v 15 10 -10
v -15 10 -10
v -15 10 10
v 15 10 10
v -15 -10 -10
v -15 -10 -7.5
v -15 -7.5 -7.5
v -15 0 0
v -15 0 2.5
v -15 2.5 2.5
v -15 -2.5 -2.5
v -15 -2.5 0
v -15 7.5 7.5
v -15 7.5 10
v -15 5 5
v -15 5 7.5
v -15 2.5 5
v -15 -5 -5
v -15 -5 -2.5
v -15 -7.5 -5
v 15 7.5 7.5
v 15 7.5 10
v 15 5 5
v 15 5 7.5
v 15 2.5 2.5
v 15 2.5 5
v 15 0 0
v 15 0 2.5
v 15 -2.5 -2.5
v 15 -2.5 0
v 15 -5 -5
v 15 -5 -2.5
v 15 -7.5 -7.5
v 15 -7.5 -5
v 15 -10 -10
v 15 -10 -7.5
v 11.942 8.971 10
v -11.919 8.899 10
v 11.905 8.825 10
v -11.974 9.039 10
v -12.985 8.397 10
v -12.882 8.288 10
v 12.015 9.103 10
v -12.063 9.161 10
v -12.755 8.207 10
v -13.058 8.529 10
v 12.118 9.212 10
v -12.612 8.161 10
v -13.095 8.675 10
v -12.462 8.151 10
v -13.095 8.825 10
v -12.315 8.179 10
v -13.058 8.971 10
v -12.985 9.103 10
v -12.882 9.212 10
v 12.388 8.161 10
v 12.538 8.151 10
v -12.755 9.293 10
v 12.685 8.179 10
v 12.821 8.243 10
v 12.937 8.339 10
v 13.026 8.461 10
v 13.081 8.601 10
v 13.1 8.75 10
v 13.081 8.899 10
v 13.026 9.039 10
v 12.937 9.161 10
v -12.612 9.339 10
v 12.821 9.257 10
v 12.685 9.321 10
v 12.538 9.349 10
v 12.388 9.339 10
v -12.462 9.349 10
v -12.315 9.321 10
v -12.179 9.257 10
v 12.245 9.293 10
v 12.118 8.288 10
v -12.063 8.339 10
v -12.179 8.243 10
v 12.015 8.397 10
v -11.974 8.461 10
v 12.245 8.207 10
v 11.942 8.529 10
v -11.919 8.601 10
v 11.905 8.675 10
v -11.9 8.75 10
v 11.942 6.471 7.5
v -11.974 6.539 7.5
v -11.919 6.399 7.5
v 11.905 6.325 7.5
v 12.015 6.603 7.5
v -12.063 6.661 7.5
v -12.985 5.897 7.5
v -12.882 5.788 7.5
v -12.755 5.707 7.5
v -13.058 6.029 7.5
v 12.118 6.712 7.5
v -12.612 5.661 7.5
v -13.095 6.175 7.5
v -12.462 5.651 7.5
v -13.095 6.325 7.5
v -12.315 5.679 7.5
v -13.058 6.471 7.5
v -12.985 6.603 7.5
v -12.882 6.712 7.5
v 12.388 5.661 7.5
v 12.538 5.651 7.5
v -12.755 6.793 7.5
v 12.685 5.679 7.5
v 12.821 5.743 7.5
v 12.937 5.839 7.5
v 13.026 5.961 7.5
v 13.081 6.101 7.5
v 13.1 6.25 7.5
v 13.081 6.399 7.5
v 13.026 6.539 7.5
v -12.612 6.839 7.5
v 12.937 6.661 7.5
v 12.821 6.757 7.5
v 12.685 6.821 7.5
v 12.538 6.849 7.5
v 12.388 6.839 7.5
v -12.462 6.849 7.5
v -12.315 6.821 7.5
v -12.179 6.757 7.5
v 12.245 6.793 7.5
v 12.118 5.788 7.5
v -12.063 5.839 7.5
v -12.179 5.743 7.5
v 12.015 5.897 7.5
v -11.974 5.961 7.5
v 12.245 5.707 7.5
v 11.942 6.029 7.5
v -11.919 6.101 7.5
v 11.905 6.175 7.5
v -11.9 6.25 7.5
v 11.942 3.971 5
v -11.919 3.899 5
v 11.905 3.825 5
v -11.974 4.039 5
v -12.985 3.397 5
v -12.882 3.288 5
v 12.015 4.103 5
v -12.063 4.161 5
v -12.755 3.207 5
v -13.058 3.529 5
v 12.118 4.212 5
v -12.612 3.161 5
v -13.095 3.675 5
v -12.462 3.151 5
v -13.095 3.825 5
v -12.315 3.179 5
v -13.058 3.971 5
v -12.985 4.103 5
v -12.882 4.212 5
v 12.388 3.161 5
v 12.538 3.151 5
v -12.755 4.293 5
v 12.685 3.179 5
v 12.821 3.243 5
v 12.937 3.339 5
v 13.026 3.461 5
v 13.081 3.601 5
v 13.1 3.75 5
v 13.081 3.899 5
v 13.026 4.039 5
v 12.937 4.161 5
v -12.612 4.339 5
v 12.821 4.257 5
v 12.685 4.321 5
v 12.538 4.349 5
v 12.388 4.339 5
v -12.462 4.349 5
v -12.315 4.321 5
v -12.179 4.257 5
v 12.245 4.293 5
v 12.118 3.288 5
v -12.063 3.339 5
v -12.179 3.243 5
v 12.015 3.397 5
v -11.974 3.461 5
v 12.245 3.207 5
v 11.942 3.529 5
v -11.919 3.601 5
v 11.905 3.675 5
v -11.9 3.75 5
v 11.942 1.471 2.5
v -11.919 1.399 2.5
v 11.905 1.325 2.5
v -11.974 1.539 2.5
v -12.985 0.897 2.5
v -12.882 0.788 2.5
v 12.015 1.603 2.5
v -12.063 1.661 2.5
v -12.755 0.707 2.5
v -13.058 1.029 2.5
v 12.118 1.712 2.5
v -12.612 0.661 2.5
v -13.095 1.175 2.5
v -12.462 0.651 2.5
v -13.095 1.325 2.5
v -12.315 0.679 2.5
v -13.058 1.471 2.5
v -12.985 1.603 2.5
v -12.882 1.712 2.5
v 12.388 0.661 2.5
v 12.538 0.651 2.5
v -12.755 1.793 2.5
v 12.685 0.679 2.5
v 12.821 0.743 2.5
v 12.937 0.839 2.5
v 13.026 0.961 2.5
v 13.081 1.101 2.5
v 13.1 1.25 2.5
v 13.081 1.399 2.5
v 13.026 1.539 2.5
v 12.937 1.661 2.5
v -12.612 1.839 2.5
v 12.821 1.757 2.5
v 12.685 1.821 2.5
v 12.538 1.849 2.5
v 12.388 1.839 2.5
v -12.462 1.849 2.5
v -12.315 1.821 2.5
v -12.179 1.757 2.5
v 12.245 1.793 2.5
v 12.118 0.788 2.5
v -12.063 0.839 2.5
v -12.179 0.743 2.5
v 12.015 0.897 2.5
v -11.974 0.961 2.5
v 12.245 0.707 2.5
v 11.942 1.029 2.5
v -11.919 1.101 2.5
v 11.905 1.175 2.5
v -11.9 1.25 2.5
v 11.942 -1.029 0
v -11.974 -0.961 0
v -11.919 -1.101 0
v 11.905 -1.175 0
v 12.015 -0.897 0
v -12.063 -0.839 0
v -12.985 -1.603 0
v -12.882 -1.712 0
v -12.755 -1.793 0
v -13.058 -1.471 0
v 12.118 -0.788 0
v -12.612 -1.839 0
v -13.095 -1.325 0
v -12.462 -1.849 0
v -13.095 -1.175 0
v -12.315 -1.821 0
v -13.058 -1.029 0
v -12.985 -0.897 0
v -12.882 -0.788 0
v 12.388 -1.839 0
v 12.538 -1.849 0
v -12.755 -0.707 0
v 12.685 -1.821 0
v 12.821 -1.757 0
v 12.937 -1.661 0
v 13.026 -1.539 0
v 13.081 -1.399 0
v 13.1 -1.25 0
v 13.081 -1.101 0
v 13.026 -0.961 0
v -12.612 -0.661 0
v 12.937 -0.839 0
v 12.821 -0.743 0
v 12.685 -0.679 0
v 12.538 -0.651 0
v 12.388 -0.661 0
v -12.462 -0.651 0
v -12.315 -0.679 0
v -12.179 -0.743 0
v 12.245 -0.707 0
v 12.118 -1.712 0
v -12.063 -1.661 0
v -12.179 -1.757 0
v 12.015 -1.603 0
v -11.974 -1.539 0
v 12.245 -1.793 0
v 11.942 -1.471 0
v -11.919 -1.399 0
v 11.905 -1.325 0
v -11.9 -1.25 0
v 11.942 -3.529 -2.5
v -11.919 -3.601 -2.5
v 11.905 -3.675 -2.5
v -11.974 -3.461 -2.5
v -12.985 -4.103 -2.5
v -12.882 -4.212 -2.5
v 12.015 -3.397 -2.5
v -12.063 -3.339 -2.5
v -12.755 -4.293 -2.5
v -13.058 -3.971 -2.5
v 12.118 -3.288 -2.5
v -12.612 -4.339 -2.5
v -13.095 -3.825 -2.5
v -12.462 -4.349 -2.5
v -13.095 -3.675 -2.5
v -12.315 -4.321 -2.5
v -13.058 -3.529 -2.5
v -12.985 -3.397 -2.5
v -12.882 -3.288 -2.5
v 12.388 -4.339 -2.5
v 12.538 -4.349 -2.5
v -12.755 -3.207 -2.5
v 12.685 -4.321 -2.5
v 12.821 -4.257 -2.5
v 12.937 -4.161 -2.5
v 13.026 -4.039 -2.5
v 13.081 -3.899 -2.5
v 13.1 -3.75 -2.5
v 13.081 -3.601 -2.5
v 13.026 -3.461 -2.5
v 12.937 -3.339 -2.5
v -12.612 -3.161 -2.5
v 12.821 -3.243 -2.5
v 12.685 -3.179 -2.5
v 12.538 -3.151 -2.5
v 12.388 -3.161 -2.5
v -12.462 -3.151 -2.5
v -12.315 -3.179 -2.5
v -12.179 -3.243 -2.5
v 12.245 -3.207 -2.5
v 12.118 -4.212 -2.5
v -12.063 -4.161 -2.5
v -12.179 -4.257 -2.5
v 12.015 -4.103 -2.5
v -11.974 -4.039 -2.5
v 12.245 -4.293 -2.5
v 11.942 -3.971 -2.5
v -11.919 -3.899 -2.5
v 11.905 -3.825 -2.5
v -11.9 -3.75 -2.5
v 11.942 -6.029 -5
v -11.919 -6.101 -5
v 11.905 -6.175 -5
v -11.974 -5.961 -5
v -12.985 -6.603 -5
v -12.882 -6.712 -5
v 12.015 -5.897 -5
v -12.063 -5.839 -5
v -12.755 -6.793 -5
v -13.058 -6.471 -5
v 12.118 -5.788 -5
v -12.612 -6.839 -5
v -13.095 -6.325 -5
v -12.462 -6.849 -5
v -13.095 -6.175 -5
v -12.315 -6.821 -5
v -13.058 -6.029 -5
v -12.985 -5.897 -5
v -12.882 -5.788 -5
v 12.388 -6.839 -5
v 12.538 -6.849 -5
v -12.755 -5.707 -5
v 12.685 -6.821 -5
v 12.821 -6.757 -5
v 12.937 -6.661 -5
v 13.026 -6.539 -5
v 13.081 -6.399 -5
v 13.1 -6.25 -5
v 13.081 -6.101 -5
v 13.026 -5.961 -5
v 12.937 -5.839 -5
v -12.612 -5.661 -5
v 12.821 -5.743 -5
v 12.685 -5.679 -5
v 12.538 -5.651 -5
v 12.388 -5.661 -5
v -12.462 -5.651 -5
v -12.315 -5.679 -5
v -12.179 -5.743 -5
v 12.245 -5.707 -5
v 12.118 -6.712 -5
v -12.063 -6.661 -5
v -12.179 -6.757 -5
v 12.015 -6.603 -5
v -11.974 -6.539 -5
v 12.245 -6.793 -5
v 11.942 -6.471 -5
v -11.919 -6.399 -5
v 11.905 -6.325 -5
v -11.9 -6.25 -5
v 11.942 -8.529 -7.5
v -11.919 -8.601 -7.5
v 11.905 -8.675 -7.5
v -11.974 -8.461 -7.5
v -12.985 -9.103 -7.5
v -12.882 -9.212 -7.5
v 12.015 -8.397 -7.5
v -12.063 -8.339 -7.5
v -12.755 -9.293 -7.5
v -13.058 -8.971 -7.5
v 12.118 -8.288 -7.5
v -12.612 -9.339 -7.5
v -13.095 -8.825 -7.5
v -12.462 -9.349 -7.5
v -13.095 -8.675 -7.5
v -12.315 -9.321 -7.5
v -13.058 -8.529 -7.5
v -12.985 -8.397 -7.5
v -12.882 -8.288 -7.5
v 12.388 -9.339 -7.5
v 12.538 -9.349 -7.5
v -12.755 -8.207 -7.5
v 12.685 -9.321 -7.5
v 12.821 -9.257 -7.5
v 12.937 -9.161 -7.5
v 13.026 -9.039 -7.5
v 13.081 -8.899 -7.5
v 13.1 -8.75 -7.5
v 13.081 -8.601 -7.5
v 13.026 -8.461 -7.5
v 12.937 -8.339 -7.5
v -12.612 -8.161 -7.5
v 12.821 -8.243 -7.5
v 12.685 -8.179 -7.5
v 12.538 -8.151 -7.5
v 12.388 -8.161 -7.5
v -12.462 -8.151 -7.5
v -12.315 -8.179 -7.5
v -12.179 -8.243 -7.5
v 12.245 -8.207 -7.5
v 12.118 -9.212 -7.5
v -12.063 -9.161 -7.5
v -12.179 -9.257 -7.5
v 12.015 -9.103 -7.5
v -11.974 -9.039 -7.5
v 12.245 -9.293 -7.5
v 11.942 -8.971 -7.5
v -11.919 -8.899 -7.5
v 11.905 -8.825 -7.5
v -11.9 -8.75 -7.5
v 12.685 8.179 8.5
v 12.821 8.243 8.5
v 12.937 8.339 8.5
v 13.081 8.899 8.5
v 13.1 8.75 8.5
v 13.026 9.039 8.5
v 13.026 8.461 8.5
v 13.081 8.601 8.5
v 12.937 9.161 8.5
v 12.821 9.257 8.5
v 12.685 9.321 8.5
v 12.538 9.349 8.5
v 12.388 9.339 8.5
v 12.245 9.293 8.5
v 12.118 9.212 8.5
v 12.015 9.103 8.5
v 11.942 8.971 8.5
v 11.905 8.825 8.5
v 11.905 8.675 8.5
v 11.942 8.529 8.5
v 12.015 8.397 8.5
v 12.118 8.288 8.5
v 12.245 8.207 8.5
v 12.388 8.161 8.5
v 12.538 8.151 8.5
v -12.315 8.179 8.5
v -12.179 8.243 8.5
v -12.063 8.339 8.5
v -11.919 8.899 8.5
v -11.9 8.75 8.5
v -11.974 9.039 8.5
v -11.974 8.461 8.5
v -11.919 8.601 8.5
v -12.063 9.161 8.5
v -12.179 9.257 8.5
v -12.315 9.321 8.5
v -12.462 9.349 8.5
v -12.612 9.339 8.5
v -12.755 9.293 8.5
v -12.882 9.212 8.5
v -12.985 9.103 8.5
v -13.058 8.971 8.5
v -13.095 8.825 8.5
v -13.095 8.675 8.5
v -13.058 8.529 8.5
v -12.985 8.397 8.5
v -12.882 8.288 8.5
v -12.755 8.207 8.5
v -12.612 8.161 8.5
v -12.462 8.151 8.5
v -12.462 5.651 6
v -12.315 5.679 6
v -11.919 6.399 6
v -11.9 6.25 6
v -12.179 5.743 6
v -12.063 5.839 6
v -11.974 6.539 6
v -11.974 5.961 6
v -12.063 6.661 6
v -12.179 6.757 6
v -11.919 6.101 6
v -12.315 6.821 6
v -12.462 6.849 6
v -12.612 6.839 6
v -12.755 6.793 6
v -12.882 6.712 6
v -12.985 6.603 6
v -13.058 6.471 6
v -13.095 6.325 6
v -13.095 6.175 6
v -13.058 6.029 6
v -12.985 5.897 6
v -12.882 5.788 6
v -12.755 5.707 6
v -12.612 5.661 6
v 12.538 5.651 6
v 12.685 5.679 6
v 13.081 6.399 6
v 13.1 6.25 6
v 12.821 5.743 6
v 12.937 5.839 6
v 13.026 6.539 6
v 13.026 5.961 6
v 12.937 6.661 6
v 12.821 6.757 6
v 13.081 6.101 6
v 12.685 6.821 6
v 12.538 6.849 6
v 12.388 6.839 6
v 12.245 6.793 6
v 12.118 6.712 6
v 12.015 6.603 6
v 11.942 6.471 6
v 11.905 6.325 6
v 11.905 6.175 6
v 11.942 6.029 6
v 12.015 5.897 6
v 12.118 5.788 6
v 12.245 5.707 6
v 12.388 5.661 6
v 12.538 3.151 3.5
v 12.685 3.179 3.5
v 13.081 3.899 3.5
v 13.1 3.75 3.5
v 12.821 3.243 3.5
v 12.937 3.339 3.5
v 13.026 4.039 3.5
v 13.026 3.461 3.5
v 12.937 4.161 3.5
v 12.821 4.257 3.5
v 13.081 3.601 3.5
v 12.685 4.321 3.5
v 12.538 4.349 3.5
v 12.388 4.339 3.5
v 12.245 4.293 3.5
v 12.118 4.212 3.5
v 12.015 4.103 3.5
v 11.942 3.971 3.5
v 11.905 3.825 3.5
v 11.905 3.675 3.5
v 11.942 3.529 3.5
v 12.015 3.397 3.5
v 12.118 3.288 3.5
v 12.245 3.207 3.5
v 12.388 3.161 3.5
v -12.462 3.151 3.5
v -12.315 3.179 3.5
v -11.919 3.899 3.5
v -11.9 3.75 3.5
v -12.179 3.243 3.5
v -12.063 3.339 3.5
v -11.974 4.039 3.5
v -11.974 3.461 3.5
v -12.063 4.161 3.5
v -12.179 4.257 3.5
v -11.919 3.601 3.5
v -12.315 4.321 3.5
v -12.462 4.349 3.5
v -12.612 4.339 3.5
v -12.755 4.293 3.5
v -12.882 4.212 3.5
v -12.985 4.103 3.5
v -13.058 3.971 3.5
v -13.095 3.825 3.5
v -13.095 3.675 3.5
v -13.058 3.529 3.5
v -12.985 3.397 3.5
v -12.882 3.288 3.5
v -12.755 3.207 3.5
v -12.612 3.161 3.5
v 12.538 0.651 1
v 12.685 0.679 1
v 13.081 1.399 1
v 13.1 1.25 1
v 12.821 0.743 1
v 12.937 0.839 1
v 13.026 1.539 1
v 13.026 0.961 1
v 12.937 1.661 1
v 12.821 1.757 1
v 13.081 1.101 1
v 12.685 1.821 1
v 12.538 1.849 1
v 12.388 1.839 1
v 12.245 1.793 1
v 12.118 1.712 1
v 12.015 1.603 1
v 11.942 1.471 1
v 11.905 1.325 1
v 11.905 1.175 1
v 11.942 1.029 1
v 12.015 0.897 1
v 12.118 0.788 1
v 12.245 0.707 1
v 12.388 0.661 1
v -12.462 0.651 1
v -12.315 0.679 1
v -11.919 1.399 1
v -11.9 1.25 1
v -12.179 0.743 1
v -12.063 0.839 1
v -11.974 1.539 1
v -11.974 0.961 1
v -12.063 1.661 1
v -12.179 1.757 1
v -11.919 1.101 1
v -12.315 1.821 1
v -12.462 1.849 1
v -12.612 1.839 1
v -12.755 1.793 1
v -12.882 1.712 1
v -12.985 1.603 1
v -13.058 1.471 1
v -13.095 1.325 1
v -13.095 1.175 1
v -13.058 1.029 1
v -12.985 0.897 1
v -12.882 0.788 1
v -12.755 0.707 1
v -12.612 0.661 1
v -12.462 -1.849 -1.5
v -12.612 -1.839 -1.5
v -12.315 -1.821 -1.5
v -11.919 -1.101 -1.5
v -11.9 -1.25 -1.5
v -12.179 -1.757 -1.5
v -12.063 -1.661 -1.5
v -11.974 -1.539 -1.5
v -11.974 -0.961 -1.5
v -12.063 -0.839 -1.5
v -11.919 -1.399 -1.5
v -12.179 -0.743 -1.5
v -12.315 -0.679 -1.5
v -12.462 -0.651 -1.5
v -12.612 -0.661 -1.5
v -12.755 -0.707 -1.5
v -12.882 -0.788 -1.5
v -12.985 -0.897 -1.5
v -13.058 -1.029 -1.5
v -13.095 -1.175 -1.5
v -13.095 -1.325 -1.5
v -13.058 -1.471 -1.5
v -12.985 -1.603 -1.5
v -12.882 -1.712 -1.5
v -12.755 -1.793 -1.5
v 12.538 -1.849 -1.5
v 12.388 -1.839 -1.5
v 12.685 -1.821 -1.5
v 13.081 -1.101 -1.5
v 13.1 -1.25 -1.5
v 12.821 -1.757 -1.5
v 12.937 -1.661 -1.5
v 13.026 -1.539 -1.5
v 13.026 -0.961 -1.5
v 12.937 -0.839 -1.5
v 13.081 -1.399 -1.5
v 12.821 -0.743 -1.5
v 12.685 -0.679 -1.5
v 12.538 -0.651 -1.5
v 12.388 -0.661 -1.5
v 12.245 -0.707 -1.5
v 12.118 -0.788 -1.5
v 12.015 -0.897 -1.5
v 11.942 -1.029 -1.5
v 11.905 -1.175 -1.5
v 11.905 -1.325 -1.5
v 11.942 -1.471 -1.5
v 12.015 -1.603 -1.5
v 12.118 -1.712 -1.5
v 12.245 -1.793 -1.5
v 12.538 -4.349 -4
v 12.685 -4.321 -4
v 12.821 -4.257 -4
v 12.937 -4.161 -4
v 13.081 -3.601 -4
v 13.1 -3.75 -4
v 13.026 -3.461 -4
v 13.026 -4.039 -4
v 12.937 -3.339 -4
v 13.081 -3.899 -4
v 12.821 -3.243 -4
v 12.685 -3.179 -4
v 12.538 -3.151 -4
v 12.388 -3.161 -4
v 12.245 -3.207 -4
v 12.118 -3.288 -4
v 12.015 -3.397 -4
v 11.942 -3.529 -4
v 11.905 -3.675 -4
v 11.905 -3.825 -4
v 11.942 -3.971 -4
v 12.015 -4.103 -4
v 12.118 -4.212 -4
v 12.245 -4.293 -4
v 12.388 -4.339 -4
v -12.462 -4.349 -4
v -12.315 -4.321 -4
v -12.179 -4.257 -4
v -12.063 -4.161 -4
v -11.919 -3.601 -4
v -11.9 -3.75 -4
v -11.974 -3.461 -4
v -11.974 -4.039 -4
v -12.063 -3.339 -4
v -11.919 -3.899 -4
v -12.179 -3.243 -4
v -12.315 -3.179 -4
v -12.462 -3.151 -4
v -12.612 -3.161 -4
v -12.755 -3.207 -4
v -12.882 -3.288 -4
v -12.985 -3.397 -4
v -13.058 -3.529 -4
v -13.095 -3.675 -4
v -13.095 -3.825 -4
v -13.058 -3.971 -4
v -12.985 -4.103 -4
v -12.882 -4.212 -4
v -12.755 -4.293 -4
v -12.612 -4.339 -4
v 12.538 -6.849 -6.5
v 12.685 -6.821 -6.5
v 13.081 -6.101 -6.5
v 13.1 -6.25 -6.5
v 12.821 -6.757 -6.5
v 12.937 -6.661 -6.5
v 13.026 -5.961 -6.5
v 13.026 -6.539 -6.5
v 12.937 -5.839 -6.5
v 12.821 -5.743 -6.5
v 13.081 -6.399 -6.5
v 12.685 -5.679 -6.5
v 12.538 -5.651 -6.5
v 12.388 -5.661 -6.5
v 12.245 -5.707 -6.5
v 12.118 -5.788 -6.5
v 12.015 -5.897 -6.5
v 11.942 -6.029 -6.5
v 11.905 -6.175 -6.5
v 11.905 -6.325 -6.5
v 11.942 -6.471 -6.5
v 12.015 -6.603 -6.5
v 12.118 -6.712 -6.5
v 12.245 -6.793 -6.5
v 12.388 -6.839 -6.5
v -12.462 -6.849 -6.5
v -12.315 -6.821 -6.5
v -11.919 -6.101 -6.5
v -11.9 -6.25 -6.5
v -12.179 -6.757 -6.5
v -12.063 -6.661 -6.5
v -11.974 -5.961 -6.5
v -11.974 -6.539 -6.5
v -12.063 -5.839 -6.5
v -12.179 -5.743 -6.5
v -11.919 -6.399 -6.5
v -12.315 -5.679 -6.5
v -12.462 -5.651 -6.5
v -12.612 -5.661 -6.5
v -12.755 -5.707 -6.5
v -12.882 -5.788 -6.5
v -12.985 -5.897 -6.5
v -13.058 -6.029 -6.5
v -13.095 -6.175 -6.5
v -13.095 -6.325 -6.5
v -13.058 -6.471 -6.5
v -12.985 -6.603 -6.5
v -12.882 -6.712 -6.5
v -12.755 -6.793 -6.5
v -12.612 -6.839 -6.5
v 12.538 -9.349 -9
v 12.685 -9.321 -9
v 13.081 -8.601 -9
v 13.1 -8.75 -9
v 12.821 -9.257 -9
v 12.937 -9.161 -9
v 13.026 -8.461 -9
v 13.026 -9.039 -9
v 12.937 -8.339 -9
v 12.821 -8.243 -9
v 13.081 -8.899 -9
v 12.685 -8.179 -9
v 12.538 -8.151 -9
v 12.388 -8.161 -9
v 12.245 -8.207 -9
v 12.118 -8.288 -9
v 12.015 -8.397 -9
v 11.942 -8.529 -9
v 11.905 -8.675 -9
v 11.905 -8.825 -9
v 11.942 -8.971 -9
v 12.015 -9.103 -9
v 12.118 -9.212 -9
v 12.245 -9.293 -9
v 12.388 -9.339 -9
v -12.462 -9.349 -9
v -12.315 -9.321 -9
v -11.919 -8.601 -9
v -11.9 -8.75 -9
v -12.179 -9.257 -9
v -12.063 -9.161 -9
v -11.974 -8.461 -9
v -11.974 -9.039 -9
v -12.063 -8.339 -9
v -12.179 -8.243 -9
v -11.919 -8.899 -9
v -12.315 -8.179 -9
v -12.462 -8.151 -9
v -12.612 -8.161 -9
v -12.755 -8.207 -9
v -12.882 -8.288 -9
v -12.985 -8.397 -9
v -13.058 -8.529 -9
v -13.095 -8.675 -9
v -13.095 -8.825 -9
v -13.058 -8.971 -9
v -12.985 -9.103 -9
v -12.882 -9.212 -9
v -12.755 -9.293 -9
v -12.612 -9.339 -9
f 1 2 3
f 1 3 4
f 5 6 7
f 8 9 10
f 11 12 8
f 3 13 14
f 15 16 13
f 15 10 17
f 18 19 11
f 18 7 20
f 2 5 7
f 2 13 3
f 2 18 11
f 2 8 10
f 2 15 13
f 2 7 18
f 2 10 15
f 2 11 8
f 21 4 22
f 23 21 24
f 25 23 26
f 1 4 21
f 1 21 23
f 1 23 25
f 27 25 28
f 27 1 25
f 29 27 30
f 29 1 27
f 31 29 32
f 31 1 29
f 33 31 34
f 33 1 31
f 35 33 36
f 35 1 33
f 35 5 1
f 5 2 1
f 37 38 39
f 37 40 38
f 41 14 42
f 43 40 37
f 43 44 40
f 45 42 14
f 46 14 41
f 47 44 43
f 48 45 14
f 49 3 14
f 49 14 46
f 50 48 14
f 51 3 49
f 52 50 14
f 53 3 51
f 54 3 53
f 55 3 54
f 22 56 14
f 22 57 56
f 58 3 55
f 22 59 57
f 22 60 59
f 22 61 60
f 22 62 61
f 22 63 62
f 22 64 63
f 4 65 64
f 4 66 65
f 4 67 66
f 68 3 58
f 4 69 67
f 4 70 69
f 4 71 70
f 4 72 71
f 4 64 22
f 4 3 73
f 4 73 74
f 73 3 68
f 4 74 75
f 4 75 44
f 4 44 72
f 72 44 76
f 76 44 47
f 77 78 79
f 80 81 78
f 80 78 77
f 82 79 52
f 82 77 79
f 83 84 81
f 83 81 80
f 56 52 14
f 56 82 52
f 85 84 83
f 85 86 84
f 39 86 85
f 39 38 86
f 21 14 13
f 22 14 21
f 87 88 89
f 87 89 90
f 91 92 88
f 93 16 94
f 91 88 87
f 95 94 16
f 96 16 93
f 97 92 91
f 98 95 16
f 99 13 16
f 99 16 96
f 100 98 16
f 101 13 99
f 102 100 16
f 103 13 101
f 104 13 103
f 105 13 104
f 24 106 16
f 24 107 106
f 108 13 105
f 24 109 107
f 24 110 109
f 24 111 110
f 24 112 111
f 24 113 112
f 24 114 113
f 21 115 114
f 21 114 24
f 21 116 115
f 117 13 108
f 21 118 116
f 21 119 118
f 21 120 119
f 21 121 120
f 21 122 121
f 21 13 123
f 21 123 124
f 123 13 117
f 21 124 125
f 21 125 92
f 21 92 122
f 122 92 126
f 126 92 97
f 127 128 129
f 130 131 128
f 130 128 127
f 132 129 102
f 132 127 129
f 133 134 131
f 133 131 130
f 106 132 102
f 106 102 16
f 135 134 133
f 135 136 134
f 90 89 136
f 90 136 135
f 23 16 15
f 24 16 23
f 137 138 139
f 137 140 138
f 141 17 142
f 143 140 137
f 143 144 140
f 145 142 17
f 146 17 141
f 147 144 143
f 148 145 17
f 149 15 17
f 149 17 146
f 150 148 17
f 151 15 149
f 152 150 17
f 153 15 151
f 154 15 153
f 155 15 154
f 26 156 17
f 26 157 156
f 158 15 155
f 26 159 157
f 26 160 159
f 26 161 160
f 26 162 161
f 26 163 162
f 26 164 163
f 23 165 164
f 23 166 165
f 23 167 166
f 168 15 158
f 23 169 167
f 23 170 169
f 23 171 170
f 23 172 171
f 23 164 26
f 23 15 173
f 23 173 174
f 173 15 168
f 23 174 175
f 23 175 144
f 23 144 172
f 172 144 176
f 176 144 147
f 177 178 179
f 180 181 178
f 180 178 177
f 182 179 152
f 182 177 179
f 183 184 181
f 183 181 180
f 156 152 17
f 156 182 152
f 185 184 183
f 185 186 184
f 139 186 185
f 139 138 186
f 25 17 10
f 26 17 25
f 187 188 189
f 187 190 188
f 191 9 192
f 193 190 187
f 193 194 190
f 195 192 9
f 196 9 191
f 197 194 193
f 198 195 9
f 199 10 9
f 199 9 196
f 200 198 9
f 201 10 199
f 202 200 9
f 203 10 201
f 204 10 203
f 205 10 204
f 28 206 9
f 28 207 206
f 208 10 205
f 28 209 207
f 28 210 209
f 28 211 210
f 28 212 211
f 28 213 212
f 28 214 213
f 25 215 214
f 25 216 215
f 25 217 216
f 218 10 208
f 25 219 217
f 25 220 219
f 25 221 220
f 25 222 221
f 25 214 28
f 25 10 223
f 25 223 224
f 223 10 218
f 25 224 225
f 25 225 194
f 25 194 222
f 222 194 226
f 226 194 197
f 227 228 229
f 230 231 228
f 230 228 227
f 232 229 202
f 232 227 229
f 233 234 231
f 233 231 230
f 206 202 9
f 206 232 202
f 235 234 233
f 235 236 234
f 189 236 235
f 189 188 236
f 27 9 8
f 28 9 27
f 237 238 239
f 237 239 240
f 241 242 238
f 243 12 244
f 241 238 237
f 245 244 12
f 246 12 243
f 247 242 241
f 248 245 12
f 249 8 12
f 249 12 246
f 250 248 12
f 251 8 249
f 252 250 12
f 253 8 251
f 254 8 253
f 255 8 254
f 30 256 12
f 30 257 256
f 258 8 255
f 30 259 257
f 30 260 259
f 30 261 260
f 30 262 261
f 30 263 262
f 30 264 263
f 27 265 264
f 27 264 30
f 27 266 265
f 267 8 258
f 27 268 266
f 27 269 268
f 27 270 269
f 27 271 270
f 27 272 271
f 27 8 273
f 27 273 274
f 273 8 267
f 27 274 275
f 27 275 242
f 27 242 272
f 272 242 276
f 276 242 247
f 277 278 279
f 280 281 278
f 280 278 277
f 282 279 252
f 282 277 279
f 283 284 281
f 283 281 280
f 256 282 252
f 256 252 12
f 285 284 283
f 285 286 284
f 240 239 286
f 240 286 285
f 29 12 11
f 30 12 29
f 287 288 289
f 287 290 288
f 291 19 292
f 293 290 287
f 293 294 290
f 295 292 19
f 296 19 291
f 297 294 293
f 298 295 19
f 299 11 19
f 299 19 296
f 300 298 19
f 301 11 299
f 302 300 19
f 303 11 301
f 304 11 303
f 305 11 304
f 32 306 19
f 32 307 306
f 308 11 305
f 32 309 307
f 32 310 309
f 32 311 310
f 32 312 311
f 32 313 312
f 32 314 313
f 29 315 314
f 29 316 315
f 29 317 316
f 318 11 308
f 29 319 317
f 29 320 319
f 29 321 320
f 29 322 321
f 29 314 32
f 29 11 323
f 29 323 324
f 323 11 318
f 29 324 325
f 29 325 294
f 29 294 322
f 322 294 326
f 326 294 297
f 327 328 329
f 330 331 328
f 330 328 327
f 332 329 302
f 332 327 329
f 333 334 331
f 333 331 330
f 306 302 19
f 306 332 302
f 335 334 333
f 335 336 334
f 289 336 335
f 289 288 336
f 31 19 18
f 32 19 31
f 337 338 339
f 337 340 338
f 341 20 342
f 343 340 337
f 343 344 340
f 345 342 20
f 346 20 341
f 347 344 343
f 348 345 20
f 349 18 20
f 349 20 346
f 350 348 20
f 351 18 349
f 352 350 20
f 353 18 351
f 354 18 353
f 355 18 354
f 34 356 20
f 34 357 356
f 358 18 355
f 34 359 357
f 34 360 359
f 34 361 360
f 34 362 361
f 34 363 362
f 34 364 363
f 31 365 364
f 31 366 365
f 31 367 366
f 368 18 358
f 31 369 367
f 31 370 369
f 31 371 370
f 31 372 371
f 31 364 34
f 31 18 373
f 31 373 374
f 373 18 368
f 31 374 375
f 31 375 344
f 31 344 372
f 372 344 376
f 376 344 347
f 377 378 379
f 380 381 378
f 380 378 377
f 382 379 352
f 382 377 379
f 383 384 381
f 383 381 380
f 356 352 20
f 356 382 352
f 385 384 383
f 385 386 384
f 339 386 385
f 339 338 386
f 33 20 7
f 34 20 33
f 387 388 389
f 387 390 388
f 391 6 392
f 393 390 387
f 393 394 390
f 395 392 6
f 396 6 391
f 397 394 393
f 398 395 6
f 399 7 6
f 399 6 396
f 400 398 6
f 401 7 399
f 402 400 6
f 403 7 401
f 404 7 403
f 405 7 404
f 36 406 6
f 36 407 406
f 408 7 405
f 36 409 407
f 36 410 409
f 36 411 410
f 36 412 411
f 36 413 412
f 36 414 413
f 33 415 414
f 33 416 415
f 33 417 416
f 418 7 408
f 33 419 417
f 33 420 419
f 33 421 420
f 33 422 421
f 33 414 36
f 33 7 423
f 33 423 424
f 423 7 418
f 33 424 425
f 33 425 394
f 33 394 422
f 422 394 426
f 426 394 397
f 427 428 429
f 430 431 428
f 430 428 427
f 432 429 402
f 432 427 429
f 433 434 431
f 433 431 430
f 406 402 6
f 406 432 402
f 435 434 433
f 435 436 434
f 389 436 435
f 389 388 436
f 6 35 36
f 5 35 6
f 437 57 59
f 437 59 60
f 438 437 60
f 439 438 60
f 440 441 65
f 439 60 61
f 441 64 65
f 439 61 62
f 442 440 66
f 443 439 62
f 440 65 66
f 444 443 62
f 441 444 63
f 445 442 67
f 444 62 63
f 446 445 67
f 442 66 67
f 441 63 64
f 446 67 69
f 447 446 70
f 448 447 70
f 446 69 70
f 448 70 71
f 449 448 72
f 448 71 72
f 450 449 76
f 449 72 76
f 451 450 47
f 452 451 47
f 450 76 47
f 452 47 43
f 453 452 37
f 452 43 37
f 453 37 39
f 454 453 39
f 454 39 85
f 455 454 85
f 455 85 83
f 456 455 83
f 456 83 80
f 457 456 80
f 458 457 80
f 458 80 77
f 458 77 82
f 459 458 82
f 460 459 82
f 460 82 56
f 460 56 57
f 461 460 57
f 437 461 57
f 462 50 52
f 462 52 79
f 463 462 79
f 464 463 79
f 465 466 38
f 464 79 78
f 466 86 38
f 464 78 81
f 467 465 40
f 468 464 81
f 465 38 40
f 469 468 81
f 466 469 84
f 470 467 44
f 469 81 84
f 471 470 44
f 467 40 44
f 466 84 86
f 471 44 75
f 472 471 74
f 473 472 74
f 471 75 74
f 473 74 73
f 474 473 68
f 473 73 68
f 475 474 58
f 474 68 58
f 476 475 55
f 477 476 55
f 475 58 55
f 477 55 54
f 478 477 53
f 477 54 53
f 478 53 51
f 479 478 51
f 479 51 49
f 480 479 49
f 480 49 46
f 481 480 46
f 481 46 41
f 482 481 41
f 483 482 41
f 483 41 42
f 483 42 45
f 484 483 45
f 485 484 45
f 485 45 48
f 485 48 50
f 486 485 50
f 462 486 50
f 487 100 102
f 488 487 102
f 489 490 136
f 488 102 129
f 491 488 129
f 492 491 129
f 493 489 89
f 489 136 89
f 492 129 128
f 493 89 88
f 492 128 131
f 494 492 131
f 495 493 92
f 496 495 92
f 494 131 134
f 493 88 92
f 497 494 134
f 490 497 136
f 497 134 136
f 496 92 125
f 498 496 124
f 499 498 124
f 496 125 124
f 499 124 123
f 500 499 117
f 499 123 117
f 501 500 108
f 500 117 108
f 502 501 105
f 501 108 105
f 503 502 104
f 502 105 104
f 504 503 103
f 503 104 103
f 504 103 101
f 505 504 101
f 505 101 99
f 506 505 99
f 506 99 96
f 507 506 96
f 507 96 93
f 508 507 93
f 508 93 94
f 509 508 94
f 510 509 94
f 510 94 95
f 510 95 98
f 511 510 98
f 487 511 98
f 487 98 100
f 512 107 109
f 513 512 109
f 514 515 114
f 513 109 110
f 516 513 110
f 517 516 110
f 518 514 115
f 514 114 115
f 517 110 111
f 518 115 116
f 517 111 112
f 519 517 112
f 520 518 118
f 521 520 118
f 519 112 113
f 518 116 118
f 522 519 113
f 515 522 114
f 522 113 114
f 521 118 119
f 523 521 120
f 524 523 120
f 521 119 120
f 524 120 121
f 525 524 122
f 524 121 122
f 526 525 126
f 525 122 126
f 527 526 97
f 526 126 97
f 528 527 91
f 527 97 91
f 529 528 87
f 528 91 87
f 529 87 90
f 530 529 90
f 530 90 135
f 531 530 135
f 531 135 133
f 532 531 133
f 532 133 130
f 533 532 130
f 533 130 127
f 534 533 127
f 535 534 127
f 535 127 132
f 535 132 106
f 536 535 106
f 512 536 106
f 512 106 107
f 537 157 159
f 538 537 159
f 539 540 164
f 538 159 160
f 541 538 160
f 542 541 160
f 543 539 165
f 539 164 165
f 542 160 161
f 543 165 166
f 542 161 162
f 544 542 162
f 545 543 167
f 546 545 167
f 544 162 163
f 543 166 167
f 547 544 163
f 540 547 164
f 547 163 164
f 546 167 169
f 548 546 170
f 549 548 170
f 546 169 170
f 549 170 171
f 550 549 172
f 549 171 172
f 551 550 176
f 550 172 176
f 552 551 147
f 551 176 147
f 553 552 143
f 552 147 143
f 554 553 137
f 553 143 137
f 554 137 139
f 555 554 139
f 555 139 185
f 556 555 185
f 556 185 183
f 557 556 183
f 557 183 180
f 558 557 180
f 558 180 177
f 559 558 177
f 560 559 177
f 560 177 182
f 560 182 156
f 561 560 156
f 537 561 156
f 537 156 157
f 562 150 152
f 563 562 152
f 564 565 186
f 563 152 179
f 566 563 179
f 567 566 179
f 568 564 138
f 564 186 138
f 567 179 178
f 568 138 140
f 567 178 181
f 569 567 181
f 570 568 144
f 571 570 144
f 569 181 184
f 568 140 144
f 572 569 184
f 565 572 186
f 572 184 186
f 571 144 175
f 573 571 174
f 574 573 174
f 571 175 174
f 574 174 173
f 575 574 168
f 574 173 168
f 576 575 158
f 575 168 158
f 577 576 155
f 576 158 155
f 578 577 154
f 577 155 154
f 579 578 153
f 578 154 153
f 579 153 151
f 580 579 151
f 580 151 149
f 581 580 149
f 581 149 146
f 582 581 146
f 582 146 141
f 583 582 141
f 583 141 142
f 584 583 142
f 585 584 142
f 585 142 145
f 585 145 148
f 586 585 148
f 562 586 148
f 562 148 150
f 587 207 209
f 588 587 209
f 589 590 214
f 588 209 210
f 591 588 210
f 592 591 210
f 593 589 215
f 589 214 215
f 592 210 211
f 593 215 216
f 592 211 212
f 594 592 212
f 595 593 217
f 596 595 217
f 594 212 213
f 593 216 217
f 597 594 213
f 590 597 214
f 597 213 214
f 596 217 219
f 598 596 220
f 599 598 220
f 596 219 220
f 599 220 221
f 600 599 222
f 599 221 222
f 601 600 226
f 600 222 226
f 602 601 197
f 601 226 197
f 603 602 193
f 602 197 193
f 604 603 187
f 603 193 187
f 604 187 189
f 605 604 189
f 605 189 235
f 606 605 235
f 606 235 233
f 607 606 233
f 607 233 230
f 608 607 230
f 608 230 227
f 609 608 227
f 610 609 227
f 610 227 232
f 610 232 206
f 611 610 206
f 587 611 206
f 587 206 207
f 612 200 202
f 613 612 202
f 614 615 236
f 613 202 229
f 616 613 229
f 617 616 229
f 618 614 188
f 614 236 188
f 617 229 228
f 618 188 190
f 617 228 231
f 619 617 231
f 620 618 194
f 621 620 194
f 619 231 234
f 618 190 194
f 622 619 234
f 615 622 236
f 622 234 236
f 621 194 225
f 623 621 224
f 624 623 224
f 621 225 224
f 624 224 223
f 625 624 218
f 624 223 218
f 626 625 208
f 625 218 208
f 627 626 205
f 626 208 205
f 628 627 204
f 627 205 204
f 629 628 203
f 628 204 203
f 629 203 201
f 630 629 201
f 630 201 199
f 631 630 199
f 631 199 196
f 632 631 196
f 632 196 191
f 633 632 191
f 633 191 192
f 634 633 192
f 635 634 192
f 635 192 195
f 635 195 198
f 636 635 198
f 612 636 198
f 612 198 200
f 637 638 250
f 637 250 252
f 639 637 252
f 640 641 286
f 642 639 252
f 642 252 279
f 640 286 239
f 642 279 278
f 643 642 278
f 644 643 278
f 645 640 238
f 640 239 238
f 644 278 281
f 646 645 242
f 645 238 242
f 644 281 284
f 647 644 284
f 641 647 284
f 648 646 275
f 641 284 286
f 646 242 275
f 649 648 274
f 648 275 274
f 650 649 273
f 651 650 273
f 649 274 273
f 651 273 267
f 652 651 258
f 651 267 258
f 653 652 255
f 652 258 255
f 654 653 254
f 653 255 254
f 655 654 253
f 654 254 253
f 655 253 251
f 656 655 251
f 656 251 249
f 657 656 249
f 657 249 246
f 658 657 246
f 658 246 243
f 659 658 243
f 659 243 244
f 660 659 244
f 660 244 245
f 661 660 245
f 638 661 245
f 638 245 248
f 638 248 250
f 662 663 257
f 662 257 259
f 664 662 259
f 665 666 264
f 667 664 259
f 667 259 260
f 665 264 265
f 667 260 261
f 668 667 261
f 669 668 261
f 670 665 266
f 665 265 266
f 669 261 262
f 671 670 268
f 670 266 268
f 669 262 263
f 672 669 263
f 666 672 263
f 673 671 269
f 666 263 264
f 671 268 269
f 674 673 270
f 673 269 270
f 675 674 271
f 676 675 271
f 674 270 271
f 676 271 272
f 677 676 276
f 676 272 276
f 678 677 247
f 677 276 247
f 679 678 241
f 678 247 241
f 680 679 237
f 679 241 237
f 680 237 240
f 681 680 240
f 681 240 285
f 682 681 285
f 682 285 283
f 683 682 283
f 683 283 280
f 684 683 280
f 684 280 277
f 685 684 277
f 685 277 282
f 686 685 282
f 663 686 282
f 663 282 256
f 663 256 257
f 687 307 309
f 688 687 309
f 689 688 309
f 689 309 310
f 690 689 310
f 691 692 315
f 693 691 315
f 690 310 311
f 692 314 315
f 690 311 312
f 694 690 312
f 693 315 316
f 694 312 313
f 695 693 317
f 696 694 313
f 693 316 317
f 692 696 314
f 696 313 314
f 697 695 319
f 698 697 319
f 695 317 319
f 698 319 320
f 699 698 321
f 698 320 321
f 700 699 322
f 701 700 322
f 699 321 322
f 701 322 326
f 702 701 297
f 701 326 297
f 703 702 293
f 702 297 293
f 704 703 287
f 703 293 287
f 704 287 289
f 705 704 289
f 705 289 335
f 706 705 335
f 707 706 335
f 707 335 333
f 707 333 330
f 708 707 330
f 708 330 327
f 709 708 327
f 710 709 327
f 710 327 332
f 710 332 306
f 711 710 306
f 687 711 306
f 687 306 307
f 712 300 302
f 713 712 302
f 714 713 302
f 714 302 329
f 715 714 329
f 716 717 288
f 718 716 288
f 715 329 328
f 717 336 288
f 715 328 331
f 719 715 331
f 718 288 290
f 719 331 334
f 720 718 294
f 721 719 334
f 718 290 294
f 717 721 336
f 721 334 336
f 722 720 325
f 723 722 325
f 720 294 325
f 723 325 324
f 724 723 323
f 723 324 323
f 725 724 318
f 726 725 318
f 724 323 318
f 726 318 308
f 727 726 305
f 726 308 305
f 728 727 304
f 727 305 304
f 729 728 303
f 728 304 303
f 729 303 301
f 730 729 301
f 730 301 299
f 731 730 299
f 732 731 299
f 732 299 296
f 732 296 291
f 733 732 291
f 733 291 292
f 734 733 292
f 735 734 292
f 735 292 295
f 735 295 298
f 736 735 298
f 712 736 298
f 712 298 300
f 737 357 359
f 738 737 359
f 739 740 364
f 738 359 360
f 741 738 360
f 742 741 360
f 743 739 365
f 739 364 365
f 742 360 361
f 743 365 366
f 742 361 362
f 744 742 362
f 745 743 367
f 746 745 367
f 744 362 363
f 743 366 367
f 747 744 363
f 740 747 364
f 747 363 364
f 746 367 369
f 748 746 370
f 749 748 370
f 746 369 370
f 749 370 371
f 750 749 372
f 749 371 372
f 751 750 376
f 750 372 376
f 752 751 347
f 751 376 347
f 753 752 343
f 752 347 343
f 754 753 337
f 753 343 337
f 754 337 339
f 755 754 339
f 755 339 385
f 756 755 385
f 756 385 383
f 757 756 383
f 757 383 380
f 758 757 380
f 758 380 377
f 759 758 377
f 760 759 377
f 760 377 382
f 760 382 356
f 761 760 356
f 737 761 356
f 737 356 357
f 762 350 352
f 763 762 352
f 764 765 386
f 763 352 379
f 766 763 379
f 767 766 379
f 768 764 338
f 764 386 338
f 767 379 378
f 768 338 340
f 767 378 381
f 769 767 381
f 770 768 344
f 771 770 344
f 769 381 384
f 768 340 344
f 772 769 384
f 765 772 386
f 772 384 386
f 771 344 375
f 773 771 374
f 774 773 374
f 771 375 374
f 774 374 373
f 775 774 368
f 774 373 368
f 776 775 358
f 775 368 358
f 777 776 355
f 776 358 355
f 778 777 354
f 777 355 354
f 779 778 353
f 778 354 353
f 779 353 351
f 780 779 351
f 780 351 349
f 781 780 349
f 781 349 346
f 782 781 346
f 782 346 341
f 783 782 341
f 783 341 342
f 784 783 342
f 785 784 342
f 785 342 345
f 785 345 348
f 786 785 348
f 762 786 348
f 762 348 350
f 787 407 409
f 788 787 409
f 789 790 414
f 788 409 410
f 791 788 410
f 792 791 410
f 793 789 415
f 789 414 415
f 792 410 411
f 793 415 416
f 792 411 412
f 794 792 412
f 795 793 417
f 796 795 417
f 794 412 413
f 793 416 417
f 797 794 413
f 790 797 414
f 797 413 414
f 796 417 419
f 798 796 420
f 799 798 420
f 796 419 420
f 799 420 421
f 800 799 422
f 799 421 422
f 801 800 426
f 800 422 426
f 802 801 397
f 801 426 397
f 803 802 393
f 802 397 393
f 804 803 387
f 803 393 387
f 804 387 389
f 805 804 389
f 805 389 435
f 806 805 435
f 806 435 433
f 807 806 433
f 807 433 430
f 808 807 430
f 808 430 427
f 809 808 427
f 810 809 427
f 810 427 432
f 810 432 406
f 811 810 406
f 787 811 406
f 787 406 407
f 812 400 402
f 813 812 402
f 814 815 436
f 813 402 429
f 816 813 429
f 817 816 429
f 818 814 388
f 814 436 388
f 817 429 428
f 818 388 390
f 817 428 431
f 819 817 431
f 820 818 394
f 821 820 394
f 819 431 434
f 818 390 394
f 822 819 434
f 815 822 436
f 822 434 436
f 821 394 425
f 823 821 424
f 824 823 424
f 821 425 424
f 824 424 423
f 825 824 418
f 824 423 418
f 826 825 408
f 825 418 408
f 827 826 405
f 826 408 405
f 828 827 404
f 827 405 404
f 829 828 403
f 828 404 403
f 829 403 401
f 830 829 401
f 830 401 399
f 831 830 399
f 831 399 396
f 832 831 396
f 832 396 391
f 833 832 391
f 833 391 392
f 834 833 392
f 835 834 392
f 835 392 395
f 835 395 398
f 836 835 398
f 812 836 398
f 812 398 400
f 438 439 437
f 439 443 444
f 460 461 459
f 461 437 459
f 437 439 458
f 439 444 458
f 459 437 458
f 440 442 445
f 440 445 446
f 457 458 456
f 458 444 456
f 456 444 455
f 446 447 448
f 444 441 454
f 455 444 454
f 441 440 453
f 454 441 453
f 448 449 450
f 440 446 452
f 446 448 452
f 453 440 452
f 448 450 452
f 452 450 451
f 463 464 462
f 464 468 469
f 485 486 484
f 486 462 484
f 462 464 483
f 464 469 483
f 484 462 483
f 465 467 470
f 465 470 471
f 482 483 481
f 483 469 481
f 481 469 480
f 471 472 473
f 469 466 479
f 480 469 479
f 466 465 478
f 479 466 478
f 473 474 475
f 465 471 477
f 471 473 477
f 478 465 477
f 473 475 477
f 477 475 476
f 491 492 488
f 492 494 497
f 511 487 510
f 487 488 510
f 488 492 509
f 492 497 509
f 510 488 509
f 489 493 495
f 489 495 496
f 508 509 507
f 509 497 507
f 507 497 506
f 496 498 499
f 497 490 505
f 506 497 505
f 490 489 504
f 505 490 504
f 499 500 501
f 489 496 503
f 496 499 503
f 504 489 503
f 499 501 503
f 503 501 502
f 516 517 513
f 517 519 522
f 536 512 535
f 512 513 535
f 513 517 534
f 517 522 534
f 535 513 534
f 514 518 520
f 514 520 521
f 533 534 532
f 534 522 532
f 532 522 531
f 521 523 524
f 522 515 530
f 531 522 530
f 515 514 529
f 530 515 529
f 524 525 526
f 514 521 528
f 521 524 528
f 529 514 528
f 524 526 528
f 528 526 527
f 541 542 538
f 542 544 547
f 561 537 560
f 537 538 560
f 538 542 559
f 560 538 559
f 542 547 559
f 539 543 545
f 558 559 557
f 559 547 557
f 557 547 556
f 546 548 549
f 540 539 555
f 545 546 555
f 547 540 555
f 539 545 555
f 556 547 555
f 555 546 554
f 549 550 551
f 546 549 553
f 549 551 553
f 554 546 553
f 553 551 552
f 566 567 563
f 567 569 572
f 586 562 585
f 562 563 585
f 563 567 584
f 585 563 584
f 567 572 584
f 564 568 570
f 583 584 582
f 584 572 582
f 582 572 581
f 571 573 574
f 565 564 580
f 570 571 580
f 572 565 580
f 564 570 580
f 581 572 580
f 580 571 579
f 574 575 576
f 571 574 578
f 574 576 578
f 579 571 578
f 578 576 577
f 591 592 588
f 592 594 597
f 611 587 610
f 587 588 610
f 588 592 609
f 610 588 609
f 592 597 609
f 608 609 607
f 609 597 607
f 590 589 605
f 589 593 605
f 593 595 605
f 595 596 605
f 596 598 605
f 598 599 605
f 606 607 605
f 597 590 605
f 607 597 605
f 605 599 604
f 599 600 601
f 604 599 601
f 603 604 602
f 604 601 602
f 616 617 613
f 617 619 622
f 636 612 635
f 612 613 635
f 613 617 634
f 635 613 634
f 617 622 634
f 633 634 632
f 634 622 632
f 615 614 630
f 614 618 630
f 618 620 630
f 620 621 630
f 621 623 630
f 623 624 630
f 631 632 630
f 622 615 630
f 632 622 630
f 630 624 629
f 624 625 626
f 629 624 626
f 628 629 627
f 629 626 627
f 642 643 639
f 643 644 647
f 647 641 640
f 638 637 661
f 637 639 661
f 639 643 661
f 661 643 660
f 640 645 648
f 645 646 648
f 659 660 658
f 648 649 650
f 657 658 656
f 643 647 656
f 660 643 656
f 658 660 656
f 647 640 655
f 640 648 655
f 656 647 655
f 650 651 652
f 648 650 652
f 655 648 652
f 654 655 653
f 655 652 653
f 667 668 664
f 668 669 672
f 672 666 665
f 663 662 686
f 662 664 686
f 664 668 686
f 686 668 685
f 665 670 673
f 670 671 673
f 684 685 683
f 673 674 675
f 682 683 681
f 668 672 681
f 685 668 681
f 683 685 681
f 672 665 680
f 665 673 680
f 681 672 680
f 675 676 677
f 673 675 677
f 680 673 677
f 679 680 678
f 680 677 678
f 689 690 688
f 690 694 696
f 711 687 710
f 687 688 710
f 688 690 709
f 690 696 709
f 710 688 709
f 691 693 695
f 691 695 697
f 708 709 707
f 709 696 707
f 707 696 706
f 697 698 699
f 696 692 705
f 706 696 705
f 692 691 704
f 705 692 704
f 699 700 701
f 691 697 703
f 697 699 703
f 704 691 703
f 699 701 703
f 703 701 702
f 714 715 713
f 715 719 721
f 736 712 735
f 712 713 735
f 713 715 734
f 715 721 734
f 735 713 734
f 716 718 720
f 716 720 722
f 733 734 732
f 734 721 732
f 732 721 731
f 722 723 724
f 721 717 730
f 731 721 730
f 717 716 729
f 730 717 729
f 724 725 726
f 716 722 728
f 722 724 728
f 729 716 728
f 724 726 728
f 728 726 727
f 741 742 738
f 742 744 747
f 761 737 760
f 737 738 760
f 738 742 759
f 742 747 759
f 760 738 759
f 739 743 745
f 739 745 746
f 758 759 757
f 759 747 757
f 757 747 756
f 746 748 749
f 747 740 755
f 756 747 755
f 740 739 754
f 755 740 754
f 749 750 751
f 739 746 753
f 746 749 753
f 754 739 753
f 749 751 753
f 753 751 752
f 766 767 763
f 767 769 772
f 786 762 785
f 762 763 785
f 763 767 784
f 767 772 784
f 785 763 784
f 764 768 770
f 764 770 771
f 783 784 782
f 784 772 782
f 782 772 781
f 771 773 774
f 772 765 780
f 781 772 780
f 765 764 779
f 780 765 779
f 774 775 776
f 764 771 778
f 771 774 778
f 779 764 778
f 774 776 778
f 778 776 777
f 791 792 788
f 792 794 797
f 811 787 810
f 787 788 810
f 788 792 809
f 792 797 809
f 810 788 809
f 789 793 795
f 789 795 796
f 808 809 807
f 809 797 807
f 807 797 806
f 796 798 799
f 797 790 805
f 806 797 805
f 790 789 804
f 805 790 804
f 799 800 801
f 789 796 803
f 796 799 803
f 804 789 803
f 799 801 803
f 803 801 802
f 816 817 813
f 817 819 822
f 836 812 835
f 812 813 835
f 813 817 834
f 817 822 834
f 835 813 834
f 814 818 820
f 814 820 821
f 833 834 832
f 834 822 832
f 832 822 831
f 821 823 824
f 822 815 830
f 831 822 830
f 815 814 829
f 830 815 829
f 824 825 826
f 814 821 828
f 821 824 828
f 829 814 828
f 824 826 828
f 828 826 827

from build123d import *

# Parameters (mm, degrees)
SKETCH_W        = 30
SKETCH_H        = 20
PAD_DEPTH       = 10
SKETCH001_W     = 30
SKETCH001_H     = 2.5
POCKET_DEPTH    = 17.5
SKETCH002_W     = 30
SKETCH002_H     = 2.5
POCKET001_DEPTH = 15
SKETCH003_W     = 30
SKETCH003_H     = 2.5
POCKET002_DEPTH = 12.5
SKETCH004_W     = 30
SKETCH004_H     = 2.5
POCKET003_DEPTH = 10
SKETCH005_W     = 30
SKETCH005_H     = 2.5
POCKET004_DEPTH = 7.5
SKETCH006_W     = 30
SKETCH006_H     = 2.5
POCKET005_DEPTH = 5
SKETCH007_W     = 30
SKETCH007_H     = 2.5
POCKET006_DEPTH = 2.5
SKETCH008_R     = 0.6
POCKET007_DEPTH = 1.5
SKETCH009_R     = 0.6
POCKET008_DEPTH = 1.5
SKETCH010_R     = 0.6
POCKET009_DEPTH = 1.5
SKETCH011_R     = 0.6
POCKET010_DEPTH = 1.5
SKETCH012_R     = 0.6
POCKET011_DEPTH = 1.5
SKETCH013_R     = 0.6
POCKET012_DEPTH = 1.5
SKETCH014_R     = 0.6
POCKET013_DEPTH = 1.5
SKETCH015_R     = 0.6
POCKET014_DEPTH = 1.5


with BuildPart() as part:
    # Sketch → Pad (new body, symmetric)
    with BuildSketch(Plane.XY):
        Rectangle(SKETCH_W, SKETCH_H)
    extrude(amount=PAD_DEPTH, both=True)

    # Sketch001 → Pocket (cut)
    with BuildSketch(Plane.XY.offset(10)):
        with Locations((0, -8.75)):
            Rectangle(SKETCH001_W, SKETCH001_H)
    extrude(amount=-POCKET_DEPTH, mode=Mode.SUBTRACT)

    # Sketch002 → Pocket001 (cut)
    with BuildSketch(Plane.XY.offset(10)):
        with Locations((0, -6.25)):
            Rectangle(SKETCH002_W, SKETCH002_H)
    extrude(amount=-POCKET001_DEPTH, mode=Mode.SUBTRACT)

    # Sketch003 → Pocket002 (cut)
    with BuildSketch(Plane.XY.offset(10)):
        with Locations((0, -3.75)):
            Rectangle(SKETCH003_W, SKETCH003_H)
    extrude(amount=-POCKET002_DEPTH, mode=Mode.SUBTRACT)

    # Sketch004 → Pocket003 (cut)
    with BuildSketch(Plane.XY.offset(10)):
        with Locations((0, -1.25)):
            Rectangle(SKETCH004_W, SKETCH004_H)
    extrude(amount=-POCKET003_DEPTH, mode=Mode.SUBTRACT)

    # Sketch005 → Pocket004 (cut)
    with BuildSketch(Plane.XY.offset(10)):
        with Locations((0, 1.25)):
            Rectangle(SKETCH005_W, SKETCH005_H)
    extrude(amount=-POCKET004_DEPTH, mode=Mode.SUBTRACT)

    # Sketch006 → Pocket005 (cut)
    with BuildSketch(Plane.XY.offset(10)):
        with Locations((0, 3.75)):
            Rectangle(SKETCH006_W, SKETCH006_H)
    extrude(amount=-POCKET005_DEPTH, mode=Mode.SUBTRACT)

    # Sketch007 → Pocket006 (cut)
    with BuildSketch(Plane.XY.offset(10)):
        with Locations((0, 6.25)):
            Rectangle(SKETCH007_W, SKETCH007_H)
    extrude(amount=-POCKET006_DEPTH, mode=Mode.SUBTRACT)

    # Sketch008 → Pocket007 (cut)
    with BuildSketch(Plane.XY.offset(-7.5)):
        with Locations((-12.5, -8.75)):
            Circle(SKETCH008_R)
        with Locations((12.5, -8.75)):
            Circle(SKETCH008_R)
    extrude(amount=-POCKET007_DEPTH, mode=Mode.SUBTRACT)

    # Sketch009 → Pocket008 (cut)
    with BuildSketch(Plane.XY.offset(-5)):
        with Locations((-12.5, -6.25)):
            Circle(SKETCH009_R)
        with Locations((12.5, -6.25)):
            Circle(SKETCH009_R)
    extrude(amount=-POCKET008_DEPTH, mode=Mode.SUBTRACT)

    # Sketch010 → Pocket009 (cut)
    with BuildSketch(Plane.XY.offset(-2.5)):
        with Locations((-12.5, -3.75)):
            Circle(SKETCH010_R)
        with Locations((12.5, -3.75)):
            Circle(SKETCH010_R)
    extrude(amount=-POCKET009_DEPTH, mode=Mode.SUBTRACT)

    # Sketch011 → Pocket010 (cut)
    with BuildSketch(Plane.XY):
        with Locations((-12.5, -1.25)):
            Circle(SKETCH011_R)
        with Locations((12.5, -1.25)):
            Circle(SKETCH011_R)
    extrude(amount=-POCKET010_DEPTH, mode=Mode.SUBTRACT)

    # Sketch012 → Pocket011 (cut)
    with BuildSketch(Plane.XY.offset(2.5)):
        with Locations((-12.5, 1.25)):
            Circle(SKETCH012_R)
        with Locations((12.5, 1.25)):
            Circle(SKETCH012_R)
    extrude(amount=-POCKET011_DEPTH, mode=Mode.SUBTRACT)

    # Sketch013 → Pocket012 (cut)
    with BuildSketch(Plane.XY.offset(5)):
        with Locations((-12.5, 3.75)):
            Circle(SKETCH013_R)
        with Locations((12.5, 3.75)):
            Circle(SKETCH013_R)
    extrude(amount=-POCKET012_DEPTH, mode=Mode.SUBTRACT)

    # Sketch014 → Pocket013 (cut)
    with BuildSketch(Plane.XY.offset(7.5)):
        with Locations((-12.5, 6.25)):
            Circle(SKETCH014_R)
        with Locations((12.5, 6.25)):
            Circle(SKETCH014_R)
    extrude(amount=-POCKET013_DEPTH, mode=Mode.SUBTRACT)

    # Sketch015 → Pocket014 (cut)
    with BuildSketch(Plane.XY.offset(10)):
        with Locations((-12.5, 8.75)):
            Circle(SKETCH015_R)
        with Locations((12.5, 8.75)):
            Circle(SKETCH015_R)
    extrude(amount=-POCKET014_DEPTH, mode=Mode.SUBTRACT)


solid = part.part
